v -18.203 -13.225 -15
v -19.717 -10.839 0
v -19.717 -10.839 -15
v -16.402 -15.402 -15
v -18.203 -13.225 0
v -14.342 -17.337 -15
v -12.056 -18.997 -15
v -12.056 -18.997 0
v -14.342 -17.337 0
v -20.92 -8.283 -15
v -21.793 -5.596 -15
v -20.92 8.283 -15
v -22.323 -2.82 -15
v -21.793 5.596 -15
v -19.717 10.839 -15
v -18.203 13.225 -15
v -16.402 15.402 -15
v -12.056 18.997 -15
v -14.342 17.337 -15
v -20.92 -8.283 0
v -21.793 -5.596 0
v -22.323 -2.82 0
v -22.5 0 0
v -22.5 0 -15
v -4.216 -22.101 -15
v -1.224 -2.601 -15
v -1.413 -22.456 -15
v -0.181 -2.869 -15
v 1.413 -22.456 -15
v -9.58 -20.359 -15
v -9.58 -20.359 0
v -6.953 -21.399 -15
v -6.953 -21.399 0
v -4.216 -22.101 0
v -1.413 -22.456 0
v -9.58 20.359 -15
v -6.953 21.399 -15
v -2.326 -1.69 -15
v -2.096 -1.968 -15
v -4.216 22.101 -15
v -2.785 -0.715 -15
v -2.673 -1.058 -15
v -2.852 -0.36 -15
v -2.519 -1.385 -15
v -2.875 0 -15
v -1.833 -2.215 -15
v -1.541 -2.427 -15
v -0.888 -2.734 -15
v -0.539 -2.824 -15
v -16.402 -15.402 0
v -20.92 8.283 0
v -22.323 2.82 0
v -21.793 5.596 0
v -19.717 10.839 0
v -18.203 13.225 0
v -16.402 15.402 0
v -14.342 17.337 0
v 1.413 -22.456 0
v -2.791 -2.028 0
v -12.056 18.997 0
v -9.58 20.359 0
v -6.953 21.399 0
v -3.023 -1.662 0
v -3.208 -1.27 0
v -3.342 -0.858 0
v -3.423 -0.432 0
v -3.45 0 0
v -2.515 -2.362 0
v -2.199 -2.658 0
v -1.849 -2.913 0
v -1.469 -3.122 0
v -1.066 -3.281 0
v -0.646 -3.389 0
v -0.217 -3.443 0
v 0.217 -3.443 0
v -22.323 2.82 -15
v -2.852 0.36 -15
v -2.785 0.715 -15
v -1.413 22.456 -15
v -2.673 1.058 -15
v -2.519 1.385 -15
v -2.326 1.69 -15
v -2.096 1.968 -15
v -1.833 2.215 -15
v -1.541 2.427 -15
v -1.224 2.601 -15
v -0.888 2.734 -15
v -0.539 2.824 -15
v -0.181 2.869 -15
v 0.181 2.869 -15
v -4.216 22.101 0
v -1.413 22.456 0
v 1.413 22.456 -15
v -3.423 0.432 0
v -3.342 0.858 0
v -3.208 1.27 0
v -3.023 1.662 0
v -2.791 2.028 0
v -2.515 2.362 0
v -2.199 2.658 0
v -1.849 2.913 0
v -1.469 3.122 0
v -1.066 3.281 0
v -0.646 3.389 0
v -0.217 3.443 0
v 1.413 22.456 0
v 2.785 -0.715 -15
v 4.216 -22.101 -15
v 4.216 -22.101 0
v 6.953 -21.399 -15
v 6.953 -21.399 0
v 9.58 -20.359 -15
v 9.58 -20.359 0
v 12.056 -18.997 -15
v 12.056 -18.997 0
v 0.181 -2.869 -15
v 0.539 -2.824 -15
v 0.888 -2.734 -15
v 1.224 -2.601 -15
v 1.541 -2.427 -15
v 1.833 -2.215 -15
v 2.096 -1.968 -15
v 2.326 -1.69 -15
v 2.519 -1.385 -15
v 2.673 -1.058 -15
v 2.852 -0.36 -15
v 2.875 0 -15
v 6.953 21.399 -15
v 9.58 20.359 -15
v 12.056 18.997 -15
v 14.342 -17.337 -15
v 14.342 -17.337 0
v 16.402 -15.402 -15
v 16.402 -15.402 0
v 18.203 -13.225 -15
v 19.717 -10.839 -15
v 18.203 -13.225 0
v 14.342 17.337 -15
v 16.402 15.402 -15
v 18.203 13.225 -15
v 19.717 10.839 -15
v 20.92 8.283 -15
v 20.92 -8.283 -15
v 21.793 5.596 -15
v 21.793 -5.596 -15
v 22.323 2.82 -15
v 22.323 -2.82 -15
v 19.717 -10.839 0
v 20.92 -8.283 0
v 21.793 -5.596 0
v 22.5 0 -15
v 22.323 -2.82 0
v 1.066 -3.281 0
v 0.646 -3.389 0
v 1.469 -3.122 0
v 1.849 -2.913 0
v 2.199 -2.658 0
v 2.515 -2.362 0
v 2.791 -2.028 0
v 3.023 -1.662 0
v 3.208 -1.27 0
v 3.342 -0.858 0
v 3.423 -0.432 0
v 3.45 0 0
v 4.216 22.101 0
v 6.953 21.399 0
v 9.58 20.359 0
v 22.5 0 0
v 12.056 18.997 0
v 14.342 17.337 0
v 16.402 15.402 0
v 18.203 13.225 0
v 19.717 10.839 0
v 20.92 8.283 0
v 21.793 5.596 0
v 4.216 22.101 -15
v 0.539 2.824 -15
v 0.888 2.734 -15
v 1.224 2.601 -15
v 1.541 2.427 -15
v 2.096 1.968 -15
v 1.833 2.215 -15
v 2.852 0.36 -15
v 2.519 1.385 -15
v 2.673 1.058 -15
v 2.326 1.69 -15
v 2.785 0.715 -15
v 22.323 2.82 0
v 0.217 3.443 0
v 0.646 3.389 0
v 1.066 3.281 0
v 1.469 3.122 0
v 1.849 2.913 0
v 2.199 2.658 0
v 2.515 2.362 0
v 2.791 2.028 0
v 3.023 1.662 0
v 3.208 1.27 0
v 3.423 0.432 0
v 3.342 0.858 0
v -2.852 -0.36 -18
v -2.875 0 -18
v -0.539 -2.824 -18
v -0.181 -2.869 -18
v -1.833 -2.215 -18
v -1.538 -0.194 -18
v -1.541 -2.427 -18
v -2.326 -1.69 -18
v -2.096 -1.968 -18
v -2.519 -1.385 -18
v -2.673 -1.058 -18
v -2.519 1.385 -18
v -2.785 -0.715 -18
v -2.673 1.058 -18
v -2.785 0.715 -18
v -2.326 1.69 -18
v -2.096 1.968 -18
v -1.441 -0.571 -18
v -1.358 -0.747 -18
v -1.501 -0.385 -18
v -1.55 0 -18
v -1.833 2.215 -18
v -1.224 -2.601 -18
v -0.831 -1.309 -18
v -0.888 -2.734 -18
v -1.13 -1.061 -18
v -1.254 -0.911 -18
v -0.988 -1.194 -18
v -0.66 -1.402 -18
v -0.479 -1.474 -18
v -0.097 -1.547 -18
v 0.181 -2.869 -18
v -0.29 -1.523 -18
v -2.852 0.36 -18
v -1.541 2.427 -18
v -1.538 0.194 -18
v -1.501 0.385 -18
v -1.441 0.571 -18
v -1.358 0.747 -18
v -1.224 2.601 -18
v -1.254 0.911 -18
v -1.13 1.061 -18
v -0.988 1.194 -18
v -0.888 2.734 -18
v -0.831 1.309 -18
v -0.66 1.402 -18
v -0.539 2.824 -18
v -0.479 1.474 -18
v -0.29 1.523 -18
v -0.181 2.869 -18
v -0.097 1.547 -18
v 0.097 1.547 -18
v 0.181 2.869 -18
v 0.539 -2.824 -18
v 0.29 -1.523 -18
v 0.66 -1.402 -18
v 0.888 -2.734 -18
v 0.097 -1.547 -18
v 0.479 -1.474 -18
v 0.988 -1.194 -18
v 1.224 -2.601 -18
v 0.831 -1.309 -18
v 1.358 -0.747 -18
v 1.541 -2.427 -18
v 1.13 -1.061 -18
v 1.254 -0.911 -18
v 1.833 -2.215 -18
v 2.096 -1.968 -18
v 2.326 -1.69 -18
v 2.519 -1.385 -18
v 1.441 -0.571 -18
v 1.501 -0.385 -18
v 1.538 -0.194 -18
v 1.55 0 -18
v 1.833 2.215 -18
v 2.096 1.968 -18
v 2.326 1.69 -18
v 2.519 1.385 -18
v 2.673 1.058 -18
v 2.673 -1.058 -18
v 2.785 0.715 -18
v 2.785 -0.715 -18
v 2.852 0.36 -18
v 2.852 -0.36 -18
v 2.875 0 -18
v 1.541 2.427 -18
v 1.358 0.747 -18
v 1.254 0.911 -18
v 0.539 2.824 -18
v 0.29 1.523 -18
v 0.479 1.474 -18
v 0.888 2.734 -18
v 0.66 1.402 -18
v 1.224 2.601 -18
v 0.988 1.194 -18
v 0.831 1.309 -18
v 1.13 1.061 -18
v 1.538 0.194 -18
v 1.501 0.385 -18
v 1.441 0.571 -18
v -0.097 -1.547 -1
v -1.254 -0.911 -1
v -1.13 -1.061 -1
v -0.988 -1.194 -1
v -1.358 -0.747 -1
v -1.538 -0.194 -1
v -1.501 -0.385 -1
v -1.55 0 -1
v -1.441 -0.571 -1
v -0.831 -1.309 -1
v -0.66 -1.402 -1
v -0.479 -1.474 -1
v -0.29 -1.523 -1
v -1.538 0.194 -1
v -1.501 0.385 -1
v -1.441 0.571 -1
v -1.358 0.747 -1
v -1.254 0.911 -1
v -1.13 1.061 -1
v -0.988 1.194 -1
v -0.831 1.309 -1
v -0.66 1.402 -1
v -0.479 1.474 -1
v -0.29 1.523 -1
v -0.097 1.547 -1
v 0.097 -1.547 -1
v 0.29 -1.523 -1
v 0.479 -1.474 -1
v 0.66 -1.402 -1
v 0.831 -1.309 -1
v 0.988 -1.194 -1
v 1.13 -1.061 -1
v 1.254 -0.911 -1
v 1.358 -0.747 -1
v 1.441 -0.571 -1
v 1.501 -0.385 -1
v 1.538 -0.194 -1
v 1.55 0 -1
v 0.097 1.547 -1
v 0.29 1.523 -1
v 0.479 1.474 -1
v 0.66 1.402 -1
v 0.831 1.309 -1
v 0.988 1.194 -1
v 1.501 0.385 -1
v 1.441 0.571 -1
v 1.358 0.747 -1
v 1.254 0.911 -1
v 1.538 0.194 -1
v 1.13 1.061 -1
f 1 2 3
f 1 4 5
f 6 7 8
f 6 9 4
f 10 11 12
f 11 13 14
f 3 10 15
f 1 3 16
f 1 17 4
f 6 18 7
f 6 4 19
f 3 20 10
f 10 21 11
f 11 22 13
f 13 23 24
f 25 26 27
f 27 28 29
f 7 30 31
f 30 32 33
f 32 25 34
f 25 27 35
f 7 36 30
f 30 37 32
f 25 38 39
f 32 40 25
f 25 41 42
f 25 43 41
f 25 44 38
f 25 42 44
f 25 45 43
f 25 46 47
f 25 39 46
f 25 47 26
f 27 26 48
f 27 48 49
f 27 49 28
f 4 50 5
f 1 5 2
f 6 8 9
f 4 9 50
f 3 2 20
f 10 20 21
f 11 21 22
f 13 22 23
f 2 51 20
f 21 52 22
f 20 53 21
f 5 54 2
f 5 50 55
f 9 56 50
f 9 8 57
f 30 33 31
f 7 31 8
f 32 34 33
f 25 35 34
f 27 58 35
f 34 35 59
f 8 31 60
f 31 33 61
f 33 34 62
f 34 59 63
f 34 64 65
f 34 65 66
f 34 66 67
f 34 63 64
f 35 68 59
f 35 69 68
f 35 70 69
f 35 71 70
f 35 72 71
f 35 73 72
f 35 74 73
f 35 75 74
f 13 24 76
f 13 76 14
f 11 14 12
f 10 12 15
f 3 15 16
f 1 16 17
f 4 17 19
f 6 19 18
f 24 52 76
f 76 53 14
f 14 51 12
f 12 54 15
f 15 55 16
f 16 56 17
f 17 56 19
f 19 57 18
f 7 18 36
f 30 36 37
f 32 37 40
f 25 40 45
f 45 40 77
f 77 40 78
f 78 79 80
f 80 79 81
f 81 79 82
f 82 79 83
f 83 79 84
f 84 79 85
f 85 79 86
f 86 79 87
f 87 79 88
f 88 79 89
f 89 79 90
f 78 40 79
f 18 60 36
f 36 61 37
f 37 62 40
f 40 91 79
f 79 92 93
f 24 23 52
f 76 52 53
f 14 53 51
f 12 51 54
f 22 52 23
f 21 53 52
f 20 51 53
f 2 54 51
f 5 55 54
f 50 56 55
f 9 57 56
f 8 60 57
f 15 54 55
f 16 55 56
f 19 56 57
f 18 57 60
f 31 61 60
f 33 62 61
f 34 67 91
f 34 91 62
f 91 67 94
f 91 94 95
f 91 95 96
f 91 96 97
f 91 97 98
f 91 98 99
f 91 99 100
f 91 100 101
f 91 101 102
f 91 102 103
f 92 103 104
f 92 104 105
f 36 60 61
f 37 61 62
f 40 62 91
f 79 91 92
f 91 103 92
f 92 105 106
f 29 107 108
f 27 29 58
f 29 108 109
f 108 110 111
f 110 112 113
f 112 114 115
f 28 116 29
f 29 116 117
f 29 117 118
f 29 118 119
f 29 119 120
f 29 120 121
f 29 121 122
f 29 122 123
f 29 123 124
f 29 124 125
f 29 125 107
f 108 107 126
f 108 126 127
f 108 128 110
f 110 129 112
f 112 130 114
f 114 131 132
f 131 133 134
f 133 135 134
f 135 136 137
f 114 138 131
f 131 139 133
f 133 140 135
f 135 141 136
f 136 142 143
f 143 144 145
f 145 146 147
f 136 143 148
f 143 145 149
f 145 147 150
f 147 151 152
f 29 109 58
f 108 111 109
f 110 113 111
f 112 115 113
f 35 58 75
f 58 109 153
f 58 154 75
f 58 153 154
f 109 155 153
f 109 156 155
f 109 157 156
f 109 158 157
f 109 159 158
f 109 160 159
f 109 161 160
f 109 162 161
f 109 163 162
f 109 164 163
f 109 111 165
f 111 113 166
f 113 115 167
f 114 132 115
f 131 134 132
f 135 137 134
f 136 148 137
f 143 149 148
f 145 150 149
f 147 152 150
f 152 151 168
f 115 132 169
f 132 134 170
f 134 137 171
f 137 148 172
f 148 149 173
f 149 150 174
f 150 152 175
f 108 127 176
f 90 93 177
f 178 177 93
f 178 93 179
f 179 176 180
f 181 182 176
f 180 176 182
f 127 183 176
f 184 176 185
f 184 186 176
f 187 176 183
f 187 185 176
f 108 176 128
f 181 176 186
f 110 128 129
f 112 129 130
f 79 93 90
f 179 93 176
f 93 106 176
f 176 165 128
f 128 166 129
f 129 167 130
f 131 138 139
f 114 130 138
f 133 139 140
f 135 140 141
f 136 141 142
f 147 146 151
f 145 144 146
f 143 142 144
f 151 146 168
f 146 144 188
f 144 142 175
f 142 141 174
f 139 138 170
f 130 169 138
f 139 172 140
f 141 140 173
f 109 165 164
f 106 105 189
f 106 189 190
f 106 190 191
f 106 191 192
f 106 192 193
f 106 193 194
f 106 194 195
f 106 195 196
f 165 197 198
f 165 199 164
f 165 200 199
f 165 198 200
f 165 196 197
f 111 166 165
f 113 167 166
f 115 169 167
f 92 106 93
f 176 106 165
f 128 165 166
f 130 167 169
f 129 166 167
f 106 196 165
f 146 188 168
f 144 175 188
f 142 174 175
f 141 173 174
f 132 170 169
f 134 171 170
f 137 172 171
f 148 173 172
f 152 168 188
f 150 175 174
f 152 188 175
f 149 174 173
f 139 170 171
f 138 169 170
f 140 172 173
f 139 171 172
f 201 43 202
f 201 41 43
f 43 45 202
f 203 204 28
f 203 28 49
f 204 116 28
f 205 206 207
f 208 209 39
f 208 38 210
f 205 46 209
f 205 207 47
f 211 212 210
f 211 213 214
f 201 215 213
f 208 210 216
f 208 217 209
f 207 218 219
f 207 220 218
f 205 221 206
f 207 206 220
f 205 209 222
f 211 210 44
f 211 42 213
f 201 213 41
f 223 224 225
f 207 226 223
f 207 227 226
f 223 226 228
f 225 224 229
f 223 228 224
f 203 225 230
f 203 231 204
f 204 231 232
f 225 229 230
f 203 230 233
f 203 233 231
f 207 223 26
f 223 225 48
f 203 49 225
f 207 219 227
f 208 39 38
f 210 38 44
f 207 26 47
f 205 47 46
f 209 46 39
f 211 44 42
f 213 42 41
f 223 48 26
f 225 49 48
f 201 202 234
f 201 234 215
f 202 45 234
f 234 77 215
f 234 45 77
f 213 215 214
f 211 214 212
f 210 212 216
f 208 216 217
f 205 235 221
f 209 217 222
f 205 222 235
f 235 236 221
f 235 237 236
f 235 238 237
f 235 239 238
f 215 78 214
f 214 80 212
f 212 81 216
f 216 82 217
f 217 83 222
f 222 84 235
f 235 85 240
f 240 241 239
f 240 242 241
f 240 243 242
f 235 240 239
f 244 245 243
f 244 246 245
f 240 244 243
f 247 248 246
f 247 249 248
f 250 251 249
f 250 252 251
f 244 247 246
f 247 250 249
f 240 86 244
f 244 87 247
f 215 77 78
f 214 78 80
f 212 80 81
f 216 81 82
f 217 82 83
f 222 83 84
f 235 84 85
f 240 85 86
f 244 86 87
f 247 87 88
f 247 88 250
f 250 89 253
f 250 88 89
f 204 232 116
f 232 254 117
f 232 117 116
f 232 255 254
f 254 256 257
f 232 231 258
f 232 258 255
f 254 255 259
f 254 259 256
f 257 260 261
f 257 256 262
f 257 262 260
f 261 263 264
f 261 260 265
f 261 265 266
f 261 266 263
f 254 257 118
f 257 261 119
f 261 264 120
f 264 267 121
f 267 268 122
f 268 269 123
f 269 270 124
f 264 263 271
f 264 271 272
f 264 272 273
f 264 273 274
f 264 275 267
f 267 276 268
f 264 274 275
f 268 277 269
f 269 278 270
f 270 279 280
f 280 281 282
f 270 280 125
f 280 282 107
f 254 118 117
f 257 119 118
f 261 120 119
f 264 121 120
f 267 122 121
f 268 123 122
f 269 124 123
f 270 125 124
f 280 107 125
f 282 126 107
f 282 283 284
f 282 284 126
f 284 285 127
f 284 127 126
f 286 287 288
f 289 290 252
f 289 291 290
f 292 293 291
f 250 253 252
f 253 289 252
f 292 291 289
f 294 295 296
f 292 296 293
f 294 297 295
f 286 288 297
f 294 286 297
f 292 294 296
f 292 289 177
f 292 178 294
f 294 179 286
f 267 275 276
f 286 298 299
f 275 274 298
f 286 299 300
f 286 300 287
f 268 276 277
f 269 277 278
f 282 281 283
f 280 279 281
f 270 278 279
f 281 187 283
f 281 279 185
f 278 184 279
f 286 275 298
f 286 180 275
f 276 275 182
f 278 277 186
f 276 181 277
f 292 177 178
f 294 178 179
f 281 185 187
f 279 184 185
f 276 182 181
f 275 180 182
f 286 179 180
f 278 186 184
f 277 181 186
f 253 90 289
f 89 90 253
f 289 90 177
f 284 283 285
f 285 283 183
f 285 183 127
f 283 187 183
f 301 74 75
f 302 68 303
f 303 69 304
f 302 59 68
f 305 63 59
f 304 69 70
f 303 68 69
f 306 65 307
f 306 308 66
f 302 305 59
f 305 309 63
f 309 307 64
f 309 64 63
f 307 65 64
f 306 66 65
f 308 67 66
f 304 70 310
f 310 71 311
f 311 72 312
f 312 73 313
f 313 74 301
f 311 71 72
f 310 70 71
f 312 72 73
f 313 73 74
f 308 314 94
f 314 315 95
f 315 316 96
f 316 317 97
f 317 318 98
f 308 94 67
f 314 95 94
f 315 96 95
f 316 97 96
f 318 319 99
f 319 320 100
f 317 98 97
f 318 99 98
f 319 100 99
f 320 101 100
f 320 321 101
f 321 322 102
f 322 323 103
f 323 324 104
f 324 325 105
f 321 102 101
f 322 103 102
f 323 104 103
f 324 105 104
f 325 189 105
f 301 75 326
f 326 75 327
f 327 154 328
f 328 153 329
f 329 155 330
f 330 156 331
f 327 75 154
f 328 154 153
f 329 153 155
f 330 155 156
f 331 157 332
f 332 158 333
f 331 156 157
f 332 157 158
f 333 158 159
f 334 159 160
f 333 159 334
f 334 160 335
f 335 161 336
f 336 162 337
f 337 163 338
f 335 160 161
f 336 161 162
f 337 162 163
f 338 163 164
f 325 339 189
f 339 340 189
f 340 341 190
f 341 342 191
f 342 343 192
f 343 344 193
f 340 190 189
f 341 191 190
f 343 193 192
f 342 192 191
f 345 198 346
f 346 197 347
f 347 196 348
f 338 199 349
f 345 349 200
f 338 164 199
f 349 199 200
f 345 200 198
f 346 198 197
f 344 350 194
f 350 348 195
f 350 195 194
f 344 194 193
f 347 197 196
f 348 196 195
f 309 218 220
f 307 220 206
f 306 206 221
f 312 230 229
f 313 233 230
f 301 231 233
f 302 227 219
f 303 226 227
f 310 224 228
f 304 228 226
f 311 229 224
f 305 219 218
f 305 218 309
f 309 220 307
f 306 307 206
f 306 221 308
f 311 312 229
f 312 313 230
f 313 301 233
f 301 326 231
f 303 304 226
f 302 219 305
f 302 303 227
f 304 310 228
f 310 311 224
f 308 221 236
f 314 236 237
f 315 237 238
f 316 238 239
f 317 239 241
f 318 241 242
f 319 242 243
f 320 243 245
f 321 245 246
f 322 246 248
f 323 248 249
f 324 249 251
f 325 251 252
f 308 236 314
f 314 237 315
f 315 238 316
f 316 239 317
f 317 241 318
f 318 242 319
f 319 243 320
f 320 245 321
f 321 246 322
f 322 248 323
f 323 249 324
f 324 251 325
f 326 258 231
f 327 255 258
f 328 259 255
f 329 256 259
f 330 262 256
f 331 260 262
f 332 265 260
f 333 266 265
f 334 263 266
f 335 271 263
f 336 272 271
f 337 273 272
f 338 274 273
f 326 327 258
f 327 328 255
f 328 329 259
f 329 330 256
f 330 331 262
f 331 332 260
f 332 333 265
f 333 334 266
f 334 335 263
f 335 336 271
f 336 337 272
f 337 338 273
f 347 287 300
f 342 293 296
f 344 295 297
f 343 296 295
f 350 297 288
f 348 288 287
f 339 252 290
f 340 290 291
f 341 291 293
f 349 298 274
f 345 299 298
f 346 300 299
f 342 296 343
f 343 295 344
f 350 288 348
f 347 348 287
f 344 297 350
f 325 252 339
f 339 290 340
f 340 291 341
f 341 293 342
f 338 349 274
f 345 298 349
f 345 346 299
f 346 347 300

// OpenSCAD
$fn = 50;


difference() {
	union() {
		translate(v = [0, 0, -15.0000000000]) {
			cylinder(h = 15, r = 22.5000000000);
		}
		#translate(v = [0, 0, -18.0000000000]) {
			cylinder(h = 18, r = 2.8750000000);
		}
	}
	union() {
		translate(v = [0, 0, 0]) {
			rotate(a = [0, 0, 0]) {
				difference() {
					union() {
						translate(v = [0, 0, -18.0000000000]) {
							cylinder(h = 18, r = 1.2500000000);
						}
						translate(v = [0, 0, -1.0000000000]) {
							cylinder(h = 1.0000000000, r1 = 1.5500000000, r2 = 3.4500000000);
						}
						translate(v = [0, 0, -18.0000000000]) {
							cylinder(h = 18, r = 1.5500000000);
						}
						translate(v = [0, 0, -18.0000000000]) {
							cylinder(h = 18, r = 1.2500000000);
						}
					}
					union();
				}
			}
		}
	}
}
